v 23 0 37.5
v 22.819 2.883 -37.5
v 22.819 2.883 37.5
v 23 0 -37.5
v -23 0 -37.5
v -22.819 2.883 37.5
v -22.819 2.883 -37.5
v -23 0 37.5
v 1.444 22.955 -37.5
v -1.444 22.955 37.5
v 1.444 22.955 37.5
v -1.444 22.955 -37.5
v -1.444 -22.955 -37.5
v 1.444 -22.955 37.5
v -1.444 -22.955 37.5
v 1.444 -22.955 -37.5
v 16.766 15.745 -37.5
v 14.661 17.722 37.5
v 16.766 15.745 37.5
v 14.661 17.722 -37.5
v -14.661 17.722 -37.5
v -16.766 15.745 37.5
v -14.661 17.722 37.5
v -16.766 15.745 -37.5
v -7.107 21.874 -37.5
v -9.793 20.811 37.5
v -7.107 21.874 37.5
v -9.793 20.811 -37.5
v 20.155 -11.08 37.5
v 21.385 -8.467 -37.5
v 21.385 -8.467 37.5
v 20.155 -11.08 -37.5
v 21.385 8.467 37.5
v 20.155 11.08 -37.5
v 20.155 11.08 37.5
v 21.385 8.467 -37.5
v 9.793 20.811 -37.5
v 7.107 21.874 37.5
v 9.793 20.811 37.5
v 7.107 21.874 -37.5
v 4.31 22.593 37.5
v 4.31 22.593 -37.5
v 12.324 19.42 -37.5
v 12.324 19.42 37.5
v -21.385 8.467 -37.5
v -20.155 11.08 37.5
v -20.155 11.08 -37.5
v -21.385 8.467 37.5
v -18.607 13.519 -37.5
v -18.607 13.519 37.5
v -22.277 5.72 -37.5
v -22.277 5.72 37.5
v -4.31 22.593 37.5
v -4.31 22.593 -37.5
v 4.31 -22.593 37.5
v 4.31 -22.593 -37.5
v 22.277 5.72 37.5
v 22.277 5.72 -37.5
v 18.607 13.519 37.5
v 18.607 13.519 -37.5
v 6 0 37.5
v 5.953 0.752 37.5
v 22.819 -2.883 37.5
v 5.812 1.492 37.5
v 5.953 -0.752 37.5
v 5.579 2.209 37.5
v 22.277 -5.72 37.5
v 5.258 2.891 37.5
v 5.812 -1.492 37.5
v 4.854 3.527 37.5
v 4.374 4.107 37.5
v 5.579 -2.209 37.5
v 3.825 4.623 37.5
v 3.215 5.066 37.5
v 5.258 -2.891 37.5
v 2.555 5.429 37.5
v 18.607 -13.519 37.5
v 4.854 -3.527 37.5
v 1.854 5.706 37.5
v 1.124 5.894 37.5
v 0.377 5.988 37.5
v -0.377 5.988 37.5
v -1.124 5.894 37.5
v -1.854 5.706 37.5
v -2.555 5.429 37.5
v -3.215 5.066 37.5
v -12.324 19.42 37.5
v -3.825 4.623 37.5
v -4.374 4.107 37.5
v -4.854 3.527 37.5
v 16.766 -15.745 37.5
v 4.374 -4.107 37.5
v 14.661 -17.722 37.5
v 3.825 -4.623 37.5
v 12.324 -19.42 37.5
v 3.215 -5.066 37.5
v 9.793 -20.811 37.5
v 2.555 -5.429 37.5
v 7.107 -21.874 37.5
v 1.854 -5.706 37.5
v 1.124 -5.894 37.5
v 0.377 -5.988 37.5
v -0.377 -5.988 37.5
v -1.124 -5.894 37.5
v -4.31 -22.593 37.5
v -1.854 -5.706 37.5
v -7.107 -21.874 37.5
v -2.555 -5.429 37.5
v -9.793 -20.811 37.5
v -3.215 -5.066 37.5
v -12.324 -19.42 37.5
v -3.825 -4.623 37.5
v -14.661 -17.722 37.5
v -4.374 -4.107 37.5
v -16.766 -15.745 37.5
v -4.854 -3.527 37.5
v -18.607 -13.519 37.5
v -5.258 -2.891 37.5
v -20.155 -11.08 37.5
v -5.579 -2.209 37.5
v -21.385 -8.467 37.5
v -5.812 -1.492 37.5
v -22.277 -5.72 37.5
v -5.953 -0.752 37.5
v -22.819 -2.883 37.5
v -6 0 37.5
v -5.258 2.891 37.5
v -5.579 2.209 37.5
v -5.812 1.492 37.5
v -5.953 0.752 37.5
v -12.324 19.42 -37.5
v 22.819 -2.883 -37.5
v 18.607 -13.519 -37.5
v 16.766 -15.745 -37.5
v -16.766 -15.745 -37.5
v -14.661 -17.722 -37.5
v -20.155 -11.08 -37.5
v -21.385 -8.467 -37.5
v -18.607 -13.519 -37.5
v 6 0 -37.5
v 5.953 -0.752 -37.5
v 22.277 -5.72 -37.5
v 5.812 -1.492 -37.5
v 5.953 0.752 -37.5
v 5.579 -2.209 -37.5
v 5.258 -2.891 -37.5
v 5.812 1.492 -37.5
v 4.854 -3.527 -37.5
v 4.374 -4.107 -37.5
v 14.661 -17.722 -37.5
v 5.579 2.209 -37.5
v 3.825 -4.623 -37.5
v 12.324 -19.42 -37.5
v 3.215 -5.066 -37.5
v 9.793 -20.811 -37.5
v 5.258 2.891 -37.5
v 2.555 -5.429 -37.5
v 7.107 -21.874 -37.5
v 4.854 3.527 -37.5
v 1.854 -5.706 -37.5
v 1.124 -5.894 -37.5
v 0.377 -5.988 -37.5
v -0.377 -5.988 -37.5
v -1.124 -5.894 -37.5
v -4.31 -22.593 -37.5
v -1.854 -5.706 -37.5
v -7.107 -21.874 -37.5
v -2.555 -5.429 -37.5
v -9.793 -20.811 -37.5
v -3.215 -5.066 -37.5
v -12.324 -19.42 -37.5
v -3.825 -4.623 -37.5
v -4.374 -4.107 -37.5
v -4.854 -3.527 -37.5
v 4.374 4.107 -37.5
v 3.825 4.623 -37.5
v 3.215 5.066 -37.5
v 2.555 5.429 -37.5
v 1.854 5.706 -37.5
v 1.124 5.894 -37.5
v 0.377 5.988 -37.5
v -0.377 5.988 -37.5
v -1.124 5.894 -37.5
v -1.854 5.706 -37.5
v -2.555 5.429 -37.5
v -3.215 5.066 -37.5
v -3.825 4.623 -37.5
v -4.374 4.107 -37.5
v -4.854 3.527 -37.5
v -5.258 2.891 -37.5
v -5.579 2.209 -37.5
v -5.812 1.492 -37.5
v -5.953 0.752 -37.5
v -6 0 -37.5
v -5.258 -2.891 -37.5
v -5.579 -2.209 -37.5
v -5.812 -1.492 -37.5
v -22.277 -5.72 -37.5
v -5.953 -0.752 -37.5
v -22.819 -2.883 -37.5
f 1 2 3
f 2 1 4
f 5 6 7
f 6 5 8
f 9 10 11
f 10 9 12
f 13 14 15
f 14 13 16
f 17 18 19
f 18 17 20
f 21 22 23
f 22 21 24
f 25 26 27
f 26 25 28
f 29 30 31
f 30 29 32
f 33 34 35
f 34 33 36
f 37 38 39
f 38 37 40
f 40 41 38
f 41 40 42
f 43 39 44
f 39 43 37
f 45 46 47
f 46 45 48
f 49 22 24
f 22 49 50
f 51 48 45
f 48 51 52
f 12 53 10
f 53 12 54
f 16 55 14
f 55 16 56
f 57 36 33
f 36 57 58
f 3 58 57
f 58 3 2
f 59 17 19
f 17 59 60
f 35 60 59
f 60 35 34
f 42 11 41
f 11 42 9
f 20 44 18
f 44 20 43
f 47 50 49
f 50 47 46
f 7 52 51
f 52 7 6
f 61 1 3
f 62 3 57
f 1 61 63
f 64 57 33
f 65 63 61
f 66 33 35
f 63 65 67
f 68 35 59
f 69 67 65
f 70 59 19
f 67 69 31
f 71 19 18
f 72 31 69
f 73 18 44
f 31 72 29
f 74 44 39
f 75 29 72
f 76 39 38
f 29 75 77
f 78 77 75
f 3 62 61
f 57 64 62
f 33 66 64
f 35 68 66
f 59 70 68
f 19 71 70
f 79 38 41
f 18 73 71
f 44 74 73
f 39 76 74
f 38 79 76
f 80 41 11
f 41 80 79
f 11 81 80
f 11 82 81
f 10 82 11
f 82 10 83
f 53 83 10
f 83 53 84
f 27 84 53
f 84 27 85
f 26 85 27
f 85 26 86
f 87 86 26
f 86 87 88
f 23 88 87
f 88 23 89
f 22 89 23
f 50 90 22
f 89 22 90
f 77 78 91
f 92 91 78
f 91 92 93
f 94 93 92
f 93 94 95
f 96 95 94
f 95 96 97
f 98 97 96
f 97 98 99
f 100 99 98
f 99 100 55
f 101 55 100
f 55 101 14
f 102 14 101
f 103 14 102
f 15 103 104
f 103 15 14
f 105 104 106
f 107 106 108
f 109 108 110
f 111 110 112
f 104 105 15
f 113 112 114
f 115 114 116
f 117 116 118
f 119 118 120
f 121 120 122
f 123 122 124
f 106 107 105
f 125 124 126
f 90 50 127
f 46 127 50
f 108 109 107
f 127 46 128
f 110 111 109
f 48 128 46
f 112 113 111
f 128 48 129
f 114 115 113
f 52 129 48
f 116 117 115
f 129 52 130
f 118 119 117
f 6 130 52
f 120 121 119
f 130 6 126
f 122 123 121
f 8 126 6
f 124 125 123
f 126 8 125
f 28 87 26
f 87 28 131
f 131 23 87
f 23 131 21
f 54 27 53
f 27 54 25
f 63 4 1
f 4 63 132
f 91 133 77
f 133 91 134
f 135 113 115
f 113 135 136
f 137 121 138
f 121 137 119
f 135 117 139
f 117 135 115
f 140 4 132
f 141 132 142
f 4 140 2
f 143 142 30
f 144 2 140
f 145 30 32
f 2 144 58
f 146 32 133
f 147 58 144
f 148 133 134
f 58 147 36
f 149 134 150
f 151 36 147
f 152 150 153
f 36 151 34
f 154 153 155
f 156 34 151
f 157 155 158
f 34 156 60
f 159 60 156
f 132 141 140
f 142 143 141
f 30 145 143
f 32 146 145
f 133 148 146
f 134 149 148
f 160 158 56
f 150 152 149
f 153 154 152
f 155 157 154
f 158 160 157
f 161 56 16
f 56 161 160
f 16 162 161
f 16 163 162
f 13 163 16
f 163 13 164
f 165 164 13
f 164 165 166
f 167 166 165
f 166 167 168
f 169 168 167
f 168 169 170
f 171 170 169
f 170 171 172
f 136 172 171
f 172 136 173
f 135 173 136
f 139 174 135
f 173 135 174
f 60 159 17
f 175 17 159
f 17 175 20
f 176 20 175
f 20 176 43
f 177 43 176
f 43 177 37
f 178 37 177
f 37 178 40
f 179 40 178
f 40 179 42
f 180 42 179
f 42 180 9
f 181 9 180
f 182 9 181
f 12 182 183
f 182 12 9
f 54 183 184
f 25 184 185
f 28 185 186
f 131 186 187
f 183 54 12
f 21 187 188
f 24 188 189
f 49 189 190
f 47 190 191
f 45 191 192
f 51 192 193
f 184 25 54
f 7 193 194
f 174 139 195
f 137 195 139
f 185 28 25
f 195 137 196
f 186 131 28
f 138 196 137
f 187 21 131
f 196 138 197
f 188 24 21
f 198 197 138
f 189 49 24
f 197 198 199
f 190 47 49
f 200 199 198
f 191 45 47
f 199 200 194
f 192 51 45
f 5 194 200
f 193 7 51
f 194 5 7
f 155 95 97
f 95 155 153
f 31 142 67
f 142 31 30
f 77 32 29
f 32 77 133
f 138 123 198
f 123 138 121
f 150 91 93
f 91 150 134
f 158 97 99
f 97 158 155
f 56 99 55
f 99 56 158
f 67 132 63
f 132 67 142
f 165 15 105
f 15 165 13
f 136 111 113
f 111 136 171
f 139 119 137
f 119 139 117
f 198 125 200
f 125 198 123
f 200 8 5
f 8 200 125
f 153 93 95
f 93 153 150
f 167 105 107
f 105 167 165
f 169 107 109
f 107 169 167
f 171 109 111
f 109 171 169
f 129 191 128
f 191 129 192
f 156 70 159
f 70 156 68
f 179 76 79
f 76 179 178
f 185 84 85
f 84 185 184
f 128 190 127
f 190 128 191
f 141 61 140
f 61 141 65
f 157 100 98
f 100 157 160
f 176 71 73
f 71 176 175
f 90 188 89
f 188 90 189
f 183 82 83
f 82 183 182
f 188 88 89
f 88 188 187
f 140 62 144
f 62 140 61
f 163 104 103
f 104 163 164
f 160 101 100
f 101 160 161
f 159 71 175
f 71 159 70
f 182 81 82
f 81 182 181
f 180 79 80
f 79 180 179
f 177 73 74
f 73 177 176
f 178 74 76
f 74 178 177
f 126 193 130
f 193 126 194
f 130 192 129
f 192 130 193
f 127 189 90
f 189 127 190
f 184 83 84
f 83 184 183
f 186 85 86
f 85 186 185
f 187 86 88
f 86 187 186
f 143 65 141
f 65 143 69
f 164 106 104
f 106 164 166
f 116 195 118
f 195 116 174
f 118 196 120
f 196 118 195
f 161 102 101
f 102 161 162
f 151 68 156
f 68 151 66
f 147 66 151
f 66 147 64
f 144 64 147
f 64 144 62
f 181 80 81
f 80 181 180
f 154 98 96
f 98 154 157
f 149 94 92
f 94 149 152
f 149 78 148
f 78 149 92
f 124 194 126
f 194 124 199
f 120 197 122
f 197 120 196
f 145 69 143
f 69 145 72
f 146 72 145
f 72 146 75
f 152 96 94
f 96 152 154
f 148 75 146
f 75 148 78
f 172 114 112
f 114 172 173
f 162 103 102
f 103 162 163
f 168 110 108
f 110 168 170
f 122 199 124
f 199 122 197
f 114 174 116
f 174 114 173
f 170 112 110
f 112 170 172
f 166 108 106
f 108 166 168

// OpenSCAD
$fn = 50;


difference() {
	union() {
		translate(v = [0, 0, -37.5000000000]) {
			cylinder(h = 75, r = 23.0000000000);
		}
	}
	union() {
		translate(v = [0, 0, -100.0000000000]) {
			cylinder(h = 200, r = 6);
		}
	}
}
